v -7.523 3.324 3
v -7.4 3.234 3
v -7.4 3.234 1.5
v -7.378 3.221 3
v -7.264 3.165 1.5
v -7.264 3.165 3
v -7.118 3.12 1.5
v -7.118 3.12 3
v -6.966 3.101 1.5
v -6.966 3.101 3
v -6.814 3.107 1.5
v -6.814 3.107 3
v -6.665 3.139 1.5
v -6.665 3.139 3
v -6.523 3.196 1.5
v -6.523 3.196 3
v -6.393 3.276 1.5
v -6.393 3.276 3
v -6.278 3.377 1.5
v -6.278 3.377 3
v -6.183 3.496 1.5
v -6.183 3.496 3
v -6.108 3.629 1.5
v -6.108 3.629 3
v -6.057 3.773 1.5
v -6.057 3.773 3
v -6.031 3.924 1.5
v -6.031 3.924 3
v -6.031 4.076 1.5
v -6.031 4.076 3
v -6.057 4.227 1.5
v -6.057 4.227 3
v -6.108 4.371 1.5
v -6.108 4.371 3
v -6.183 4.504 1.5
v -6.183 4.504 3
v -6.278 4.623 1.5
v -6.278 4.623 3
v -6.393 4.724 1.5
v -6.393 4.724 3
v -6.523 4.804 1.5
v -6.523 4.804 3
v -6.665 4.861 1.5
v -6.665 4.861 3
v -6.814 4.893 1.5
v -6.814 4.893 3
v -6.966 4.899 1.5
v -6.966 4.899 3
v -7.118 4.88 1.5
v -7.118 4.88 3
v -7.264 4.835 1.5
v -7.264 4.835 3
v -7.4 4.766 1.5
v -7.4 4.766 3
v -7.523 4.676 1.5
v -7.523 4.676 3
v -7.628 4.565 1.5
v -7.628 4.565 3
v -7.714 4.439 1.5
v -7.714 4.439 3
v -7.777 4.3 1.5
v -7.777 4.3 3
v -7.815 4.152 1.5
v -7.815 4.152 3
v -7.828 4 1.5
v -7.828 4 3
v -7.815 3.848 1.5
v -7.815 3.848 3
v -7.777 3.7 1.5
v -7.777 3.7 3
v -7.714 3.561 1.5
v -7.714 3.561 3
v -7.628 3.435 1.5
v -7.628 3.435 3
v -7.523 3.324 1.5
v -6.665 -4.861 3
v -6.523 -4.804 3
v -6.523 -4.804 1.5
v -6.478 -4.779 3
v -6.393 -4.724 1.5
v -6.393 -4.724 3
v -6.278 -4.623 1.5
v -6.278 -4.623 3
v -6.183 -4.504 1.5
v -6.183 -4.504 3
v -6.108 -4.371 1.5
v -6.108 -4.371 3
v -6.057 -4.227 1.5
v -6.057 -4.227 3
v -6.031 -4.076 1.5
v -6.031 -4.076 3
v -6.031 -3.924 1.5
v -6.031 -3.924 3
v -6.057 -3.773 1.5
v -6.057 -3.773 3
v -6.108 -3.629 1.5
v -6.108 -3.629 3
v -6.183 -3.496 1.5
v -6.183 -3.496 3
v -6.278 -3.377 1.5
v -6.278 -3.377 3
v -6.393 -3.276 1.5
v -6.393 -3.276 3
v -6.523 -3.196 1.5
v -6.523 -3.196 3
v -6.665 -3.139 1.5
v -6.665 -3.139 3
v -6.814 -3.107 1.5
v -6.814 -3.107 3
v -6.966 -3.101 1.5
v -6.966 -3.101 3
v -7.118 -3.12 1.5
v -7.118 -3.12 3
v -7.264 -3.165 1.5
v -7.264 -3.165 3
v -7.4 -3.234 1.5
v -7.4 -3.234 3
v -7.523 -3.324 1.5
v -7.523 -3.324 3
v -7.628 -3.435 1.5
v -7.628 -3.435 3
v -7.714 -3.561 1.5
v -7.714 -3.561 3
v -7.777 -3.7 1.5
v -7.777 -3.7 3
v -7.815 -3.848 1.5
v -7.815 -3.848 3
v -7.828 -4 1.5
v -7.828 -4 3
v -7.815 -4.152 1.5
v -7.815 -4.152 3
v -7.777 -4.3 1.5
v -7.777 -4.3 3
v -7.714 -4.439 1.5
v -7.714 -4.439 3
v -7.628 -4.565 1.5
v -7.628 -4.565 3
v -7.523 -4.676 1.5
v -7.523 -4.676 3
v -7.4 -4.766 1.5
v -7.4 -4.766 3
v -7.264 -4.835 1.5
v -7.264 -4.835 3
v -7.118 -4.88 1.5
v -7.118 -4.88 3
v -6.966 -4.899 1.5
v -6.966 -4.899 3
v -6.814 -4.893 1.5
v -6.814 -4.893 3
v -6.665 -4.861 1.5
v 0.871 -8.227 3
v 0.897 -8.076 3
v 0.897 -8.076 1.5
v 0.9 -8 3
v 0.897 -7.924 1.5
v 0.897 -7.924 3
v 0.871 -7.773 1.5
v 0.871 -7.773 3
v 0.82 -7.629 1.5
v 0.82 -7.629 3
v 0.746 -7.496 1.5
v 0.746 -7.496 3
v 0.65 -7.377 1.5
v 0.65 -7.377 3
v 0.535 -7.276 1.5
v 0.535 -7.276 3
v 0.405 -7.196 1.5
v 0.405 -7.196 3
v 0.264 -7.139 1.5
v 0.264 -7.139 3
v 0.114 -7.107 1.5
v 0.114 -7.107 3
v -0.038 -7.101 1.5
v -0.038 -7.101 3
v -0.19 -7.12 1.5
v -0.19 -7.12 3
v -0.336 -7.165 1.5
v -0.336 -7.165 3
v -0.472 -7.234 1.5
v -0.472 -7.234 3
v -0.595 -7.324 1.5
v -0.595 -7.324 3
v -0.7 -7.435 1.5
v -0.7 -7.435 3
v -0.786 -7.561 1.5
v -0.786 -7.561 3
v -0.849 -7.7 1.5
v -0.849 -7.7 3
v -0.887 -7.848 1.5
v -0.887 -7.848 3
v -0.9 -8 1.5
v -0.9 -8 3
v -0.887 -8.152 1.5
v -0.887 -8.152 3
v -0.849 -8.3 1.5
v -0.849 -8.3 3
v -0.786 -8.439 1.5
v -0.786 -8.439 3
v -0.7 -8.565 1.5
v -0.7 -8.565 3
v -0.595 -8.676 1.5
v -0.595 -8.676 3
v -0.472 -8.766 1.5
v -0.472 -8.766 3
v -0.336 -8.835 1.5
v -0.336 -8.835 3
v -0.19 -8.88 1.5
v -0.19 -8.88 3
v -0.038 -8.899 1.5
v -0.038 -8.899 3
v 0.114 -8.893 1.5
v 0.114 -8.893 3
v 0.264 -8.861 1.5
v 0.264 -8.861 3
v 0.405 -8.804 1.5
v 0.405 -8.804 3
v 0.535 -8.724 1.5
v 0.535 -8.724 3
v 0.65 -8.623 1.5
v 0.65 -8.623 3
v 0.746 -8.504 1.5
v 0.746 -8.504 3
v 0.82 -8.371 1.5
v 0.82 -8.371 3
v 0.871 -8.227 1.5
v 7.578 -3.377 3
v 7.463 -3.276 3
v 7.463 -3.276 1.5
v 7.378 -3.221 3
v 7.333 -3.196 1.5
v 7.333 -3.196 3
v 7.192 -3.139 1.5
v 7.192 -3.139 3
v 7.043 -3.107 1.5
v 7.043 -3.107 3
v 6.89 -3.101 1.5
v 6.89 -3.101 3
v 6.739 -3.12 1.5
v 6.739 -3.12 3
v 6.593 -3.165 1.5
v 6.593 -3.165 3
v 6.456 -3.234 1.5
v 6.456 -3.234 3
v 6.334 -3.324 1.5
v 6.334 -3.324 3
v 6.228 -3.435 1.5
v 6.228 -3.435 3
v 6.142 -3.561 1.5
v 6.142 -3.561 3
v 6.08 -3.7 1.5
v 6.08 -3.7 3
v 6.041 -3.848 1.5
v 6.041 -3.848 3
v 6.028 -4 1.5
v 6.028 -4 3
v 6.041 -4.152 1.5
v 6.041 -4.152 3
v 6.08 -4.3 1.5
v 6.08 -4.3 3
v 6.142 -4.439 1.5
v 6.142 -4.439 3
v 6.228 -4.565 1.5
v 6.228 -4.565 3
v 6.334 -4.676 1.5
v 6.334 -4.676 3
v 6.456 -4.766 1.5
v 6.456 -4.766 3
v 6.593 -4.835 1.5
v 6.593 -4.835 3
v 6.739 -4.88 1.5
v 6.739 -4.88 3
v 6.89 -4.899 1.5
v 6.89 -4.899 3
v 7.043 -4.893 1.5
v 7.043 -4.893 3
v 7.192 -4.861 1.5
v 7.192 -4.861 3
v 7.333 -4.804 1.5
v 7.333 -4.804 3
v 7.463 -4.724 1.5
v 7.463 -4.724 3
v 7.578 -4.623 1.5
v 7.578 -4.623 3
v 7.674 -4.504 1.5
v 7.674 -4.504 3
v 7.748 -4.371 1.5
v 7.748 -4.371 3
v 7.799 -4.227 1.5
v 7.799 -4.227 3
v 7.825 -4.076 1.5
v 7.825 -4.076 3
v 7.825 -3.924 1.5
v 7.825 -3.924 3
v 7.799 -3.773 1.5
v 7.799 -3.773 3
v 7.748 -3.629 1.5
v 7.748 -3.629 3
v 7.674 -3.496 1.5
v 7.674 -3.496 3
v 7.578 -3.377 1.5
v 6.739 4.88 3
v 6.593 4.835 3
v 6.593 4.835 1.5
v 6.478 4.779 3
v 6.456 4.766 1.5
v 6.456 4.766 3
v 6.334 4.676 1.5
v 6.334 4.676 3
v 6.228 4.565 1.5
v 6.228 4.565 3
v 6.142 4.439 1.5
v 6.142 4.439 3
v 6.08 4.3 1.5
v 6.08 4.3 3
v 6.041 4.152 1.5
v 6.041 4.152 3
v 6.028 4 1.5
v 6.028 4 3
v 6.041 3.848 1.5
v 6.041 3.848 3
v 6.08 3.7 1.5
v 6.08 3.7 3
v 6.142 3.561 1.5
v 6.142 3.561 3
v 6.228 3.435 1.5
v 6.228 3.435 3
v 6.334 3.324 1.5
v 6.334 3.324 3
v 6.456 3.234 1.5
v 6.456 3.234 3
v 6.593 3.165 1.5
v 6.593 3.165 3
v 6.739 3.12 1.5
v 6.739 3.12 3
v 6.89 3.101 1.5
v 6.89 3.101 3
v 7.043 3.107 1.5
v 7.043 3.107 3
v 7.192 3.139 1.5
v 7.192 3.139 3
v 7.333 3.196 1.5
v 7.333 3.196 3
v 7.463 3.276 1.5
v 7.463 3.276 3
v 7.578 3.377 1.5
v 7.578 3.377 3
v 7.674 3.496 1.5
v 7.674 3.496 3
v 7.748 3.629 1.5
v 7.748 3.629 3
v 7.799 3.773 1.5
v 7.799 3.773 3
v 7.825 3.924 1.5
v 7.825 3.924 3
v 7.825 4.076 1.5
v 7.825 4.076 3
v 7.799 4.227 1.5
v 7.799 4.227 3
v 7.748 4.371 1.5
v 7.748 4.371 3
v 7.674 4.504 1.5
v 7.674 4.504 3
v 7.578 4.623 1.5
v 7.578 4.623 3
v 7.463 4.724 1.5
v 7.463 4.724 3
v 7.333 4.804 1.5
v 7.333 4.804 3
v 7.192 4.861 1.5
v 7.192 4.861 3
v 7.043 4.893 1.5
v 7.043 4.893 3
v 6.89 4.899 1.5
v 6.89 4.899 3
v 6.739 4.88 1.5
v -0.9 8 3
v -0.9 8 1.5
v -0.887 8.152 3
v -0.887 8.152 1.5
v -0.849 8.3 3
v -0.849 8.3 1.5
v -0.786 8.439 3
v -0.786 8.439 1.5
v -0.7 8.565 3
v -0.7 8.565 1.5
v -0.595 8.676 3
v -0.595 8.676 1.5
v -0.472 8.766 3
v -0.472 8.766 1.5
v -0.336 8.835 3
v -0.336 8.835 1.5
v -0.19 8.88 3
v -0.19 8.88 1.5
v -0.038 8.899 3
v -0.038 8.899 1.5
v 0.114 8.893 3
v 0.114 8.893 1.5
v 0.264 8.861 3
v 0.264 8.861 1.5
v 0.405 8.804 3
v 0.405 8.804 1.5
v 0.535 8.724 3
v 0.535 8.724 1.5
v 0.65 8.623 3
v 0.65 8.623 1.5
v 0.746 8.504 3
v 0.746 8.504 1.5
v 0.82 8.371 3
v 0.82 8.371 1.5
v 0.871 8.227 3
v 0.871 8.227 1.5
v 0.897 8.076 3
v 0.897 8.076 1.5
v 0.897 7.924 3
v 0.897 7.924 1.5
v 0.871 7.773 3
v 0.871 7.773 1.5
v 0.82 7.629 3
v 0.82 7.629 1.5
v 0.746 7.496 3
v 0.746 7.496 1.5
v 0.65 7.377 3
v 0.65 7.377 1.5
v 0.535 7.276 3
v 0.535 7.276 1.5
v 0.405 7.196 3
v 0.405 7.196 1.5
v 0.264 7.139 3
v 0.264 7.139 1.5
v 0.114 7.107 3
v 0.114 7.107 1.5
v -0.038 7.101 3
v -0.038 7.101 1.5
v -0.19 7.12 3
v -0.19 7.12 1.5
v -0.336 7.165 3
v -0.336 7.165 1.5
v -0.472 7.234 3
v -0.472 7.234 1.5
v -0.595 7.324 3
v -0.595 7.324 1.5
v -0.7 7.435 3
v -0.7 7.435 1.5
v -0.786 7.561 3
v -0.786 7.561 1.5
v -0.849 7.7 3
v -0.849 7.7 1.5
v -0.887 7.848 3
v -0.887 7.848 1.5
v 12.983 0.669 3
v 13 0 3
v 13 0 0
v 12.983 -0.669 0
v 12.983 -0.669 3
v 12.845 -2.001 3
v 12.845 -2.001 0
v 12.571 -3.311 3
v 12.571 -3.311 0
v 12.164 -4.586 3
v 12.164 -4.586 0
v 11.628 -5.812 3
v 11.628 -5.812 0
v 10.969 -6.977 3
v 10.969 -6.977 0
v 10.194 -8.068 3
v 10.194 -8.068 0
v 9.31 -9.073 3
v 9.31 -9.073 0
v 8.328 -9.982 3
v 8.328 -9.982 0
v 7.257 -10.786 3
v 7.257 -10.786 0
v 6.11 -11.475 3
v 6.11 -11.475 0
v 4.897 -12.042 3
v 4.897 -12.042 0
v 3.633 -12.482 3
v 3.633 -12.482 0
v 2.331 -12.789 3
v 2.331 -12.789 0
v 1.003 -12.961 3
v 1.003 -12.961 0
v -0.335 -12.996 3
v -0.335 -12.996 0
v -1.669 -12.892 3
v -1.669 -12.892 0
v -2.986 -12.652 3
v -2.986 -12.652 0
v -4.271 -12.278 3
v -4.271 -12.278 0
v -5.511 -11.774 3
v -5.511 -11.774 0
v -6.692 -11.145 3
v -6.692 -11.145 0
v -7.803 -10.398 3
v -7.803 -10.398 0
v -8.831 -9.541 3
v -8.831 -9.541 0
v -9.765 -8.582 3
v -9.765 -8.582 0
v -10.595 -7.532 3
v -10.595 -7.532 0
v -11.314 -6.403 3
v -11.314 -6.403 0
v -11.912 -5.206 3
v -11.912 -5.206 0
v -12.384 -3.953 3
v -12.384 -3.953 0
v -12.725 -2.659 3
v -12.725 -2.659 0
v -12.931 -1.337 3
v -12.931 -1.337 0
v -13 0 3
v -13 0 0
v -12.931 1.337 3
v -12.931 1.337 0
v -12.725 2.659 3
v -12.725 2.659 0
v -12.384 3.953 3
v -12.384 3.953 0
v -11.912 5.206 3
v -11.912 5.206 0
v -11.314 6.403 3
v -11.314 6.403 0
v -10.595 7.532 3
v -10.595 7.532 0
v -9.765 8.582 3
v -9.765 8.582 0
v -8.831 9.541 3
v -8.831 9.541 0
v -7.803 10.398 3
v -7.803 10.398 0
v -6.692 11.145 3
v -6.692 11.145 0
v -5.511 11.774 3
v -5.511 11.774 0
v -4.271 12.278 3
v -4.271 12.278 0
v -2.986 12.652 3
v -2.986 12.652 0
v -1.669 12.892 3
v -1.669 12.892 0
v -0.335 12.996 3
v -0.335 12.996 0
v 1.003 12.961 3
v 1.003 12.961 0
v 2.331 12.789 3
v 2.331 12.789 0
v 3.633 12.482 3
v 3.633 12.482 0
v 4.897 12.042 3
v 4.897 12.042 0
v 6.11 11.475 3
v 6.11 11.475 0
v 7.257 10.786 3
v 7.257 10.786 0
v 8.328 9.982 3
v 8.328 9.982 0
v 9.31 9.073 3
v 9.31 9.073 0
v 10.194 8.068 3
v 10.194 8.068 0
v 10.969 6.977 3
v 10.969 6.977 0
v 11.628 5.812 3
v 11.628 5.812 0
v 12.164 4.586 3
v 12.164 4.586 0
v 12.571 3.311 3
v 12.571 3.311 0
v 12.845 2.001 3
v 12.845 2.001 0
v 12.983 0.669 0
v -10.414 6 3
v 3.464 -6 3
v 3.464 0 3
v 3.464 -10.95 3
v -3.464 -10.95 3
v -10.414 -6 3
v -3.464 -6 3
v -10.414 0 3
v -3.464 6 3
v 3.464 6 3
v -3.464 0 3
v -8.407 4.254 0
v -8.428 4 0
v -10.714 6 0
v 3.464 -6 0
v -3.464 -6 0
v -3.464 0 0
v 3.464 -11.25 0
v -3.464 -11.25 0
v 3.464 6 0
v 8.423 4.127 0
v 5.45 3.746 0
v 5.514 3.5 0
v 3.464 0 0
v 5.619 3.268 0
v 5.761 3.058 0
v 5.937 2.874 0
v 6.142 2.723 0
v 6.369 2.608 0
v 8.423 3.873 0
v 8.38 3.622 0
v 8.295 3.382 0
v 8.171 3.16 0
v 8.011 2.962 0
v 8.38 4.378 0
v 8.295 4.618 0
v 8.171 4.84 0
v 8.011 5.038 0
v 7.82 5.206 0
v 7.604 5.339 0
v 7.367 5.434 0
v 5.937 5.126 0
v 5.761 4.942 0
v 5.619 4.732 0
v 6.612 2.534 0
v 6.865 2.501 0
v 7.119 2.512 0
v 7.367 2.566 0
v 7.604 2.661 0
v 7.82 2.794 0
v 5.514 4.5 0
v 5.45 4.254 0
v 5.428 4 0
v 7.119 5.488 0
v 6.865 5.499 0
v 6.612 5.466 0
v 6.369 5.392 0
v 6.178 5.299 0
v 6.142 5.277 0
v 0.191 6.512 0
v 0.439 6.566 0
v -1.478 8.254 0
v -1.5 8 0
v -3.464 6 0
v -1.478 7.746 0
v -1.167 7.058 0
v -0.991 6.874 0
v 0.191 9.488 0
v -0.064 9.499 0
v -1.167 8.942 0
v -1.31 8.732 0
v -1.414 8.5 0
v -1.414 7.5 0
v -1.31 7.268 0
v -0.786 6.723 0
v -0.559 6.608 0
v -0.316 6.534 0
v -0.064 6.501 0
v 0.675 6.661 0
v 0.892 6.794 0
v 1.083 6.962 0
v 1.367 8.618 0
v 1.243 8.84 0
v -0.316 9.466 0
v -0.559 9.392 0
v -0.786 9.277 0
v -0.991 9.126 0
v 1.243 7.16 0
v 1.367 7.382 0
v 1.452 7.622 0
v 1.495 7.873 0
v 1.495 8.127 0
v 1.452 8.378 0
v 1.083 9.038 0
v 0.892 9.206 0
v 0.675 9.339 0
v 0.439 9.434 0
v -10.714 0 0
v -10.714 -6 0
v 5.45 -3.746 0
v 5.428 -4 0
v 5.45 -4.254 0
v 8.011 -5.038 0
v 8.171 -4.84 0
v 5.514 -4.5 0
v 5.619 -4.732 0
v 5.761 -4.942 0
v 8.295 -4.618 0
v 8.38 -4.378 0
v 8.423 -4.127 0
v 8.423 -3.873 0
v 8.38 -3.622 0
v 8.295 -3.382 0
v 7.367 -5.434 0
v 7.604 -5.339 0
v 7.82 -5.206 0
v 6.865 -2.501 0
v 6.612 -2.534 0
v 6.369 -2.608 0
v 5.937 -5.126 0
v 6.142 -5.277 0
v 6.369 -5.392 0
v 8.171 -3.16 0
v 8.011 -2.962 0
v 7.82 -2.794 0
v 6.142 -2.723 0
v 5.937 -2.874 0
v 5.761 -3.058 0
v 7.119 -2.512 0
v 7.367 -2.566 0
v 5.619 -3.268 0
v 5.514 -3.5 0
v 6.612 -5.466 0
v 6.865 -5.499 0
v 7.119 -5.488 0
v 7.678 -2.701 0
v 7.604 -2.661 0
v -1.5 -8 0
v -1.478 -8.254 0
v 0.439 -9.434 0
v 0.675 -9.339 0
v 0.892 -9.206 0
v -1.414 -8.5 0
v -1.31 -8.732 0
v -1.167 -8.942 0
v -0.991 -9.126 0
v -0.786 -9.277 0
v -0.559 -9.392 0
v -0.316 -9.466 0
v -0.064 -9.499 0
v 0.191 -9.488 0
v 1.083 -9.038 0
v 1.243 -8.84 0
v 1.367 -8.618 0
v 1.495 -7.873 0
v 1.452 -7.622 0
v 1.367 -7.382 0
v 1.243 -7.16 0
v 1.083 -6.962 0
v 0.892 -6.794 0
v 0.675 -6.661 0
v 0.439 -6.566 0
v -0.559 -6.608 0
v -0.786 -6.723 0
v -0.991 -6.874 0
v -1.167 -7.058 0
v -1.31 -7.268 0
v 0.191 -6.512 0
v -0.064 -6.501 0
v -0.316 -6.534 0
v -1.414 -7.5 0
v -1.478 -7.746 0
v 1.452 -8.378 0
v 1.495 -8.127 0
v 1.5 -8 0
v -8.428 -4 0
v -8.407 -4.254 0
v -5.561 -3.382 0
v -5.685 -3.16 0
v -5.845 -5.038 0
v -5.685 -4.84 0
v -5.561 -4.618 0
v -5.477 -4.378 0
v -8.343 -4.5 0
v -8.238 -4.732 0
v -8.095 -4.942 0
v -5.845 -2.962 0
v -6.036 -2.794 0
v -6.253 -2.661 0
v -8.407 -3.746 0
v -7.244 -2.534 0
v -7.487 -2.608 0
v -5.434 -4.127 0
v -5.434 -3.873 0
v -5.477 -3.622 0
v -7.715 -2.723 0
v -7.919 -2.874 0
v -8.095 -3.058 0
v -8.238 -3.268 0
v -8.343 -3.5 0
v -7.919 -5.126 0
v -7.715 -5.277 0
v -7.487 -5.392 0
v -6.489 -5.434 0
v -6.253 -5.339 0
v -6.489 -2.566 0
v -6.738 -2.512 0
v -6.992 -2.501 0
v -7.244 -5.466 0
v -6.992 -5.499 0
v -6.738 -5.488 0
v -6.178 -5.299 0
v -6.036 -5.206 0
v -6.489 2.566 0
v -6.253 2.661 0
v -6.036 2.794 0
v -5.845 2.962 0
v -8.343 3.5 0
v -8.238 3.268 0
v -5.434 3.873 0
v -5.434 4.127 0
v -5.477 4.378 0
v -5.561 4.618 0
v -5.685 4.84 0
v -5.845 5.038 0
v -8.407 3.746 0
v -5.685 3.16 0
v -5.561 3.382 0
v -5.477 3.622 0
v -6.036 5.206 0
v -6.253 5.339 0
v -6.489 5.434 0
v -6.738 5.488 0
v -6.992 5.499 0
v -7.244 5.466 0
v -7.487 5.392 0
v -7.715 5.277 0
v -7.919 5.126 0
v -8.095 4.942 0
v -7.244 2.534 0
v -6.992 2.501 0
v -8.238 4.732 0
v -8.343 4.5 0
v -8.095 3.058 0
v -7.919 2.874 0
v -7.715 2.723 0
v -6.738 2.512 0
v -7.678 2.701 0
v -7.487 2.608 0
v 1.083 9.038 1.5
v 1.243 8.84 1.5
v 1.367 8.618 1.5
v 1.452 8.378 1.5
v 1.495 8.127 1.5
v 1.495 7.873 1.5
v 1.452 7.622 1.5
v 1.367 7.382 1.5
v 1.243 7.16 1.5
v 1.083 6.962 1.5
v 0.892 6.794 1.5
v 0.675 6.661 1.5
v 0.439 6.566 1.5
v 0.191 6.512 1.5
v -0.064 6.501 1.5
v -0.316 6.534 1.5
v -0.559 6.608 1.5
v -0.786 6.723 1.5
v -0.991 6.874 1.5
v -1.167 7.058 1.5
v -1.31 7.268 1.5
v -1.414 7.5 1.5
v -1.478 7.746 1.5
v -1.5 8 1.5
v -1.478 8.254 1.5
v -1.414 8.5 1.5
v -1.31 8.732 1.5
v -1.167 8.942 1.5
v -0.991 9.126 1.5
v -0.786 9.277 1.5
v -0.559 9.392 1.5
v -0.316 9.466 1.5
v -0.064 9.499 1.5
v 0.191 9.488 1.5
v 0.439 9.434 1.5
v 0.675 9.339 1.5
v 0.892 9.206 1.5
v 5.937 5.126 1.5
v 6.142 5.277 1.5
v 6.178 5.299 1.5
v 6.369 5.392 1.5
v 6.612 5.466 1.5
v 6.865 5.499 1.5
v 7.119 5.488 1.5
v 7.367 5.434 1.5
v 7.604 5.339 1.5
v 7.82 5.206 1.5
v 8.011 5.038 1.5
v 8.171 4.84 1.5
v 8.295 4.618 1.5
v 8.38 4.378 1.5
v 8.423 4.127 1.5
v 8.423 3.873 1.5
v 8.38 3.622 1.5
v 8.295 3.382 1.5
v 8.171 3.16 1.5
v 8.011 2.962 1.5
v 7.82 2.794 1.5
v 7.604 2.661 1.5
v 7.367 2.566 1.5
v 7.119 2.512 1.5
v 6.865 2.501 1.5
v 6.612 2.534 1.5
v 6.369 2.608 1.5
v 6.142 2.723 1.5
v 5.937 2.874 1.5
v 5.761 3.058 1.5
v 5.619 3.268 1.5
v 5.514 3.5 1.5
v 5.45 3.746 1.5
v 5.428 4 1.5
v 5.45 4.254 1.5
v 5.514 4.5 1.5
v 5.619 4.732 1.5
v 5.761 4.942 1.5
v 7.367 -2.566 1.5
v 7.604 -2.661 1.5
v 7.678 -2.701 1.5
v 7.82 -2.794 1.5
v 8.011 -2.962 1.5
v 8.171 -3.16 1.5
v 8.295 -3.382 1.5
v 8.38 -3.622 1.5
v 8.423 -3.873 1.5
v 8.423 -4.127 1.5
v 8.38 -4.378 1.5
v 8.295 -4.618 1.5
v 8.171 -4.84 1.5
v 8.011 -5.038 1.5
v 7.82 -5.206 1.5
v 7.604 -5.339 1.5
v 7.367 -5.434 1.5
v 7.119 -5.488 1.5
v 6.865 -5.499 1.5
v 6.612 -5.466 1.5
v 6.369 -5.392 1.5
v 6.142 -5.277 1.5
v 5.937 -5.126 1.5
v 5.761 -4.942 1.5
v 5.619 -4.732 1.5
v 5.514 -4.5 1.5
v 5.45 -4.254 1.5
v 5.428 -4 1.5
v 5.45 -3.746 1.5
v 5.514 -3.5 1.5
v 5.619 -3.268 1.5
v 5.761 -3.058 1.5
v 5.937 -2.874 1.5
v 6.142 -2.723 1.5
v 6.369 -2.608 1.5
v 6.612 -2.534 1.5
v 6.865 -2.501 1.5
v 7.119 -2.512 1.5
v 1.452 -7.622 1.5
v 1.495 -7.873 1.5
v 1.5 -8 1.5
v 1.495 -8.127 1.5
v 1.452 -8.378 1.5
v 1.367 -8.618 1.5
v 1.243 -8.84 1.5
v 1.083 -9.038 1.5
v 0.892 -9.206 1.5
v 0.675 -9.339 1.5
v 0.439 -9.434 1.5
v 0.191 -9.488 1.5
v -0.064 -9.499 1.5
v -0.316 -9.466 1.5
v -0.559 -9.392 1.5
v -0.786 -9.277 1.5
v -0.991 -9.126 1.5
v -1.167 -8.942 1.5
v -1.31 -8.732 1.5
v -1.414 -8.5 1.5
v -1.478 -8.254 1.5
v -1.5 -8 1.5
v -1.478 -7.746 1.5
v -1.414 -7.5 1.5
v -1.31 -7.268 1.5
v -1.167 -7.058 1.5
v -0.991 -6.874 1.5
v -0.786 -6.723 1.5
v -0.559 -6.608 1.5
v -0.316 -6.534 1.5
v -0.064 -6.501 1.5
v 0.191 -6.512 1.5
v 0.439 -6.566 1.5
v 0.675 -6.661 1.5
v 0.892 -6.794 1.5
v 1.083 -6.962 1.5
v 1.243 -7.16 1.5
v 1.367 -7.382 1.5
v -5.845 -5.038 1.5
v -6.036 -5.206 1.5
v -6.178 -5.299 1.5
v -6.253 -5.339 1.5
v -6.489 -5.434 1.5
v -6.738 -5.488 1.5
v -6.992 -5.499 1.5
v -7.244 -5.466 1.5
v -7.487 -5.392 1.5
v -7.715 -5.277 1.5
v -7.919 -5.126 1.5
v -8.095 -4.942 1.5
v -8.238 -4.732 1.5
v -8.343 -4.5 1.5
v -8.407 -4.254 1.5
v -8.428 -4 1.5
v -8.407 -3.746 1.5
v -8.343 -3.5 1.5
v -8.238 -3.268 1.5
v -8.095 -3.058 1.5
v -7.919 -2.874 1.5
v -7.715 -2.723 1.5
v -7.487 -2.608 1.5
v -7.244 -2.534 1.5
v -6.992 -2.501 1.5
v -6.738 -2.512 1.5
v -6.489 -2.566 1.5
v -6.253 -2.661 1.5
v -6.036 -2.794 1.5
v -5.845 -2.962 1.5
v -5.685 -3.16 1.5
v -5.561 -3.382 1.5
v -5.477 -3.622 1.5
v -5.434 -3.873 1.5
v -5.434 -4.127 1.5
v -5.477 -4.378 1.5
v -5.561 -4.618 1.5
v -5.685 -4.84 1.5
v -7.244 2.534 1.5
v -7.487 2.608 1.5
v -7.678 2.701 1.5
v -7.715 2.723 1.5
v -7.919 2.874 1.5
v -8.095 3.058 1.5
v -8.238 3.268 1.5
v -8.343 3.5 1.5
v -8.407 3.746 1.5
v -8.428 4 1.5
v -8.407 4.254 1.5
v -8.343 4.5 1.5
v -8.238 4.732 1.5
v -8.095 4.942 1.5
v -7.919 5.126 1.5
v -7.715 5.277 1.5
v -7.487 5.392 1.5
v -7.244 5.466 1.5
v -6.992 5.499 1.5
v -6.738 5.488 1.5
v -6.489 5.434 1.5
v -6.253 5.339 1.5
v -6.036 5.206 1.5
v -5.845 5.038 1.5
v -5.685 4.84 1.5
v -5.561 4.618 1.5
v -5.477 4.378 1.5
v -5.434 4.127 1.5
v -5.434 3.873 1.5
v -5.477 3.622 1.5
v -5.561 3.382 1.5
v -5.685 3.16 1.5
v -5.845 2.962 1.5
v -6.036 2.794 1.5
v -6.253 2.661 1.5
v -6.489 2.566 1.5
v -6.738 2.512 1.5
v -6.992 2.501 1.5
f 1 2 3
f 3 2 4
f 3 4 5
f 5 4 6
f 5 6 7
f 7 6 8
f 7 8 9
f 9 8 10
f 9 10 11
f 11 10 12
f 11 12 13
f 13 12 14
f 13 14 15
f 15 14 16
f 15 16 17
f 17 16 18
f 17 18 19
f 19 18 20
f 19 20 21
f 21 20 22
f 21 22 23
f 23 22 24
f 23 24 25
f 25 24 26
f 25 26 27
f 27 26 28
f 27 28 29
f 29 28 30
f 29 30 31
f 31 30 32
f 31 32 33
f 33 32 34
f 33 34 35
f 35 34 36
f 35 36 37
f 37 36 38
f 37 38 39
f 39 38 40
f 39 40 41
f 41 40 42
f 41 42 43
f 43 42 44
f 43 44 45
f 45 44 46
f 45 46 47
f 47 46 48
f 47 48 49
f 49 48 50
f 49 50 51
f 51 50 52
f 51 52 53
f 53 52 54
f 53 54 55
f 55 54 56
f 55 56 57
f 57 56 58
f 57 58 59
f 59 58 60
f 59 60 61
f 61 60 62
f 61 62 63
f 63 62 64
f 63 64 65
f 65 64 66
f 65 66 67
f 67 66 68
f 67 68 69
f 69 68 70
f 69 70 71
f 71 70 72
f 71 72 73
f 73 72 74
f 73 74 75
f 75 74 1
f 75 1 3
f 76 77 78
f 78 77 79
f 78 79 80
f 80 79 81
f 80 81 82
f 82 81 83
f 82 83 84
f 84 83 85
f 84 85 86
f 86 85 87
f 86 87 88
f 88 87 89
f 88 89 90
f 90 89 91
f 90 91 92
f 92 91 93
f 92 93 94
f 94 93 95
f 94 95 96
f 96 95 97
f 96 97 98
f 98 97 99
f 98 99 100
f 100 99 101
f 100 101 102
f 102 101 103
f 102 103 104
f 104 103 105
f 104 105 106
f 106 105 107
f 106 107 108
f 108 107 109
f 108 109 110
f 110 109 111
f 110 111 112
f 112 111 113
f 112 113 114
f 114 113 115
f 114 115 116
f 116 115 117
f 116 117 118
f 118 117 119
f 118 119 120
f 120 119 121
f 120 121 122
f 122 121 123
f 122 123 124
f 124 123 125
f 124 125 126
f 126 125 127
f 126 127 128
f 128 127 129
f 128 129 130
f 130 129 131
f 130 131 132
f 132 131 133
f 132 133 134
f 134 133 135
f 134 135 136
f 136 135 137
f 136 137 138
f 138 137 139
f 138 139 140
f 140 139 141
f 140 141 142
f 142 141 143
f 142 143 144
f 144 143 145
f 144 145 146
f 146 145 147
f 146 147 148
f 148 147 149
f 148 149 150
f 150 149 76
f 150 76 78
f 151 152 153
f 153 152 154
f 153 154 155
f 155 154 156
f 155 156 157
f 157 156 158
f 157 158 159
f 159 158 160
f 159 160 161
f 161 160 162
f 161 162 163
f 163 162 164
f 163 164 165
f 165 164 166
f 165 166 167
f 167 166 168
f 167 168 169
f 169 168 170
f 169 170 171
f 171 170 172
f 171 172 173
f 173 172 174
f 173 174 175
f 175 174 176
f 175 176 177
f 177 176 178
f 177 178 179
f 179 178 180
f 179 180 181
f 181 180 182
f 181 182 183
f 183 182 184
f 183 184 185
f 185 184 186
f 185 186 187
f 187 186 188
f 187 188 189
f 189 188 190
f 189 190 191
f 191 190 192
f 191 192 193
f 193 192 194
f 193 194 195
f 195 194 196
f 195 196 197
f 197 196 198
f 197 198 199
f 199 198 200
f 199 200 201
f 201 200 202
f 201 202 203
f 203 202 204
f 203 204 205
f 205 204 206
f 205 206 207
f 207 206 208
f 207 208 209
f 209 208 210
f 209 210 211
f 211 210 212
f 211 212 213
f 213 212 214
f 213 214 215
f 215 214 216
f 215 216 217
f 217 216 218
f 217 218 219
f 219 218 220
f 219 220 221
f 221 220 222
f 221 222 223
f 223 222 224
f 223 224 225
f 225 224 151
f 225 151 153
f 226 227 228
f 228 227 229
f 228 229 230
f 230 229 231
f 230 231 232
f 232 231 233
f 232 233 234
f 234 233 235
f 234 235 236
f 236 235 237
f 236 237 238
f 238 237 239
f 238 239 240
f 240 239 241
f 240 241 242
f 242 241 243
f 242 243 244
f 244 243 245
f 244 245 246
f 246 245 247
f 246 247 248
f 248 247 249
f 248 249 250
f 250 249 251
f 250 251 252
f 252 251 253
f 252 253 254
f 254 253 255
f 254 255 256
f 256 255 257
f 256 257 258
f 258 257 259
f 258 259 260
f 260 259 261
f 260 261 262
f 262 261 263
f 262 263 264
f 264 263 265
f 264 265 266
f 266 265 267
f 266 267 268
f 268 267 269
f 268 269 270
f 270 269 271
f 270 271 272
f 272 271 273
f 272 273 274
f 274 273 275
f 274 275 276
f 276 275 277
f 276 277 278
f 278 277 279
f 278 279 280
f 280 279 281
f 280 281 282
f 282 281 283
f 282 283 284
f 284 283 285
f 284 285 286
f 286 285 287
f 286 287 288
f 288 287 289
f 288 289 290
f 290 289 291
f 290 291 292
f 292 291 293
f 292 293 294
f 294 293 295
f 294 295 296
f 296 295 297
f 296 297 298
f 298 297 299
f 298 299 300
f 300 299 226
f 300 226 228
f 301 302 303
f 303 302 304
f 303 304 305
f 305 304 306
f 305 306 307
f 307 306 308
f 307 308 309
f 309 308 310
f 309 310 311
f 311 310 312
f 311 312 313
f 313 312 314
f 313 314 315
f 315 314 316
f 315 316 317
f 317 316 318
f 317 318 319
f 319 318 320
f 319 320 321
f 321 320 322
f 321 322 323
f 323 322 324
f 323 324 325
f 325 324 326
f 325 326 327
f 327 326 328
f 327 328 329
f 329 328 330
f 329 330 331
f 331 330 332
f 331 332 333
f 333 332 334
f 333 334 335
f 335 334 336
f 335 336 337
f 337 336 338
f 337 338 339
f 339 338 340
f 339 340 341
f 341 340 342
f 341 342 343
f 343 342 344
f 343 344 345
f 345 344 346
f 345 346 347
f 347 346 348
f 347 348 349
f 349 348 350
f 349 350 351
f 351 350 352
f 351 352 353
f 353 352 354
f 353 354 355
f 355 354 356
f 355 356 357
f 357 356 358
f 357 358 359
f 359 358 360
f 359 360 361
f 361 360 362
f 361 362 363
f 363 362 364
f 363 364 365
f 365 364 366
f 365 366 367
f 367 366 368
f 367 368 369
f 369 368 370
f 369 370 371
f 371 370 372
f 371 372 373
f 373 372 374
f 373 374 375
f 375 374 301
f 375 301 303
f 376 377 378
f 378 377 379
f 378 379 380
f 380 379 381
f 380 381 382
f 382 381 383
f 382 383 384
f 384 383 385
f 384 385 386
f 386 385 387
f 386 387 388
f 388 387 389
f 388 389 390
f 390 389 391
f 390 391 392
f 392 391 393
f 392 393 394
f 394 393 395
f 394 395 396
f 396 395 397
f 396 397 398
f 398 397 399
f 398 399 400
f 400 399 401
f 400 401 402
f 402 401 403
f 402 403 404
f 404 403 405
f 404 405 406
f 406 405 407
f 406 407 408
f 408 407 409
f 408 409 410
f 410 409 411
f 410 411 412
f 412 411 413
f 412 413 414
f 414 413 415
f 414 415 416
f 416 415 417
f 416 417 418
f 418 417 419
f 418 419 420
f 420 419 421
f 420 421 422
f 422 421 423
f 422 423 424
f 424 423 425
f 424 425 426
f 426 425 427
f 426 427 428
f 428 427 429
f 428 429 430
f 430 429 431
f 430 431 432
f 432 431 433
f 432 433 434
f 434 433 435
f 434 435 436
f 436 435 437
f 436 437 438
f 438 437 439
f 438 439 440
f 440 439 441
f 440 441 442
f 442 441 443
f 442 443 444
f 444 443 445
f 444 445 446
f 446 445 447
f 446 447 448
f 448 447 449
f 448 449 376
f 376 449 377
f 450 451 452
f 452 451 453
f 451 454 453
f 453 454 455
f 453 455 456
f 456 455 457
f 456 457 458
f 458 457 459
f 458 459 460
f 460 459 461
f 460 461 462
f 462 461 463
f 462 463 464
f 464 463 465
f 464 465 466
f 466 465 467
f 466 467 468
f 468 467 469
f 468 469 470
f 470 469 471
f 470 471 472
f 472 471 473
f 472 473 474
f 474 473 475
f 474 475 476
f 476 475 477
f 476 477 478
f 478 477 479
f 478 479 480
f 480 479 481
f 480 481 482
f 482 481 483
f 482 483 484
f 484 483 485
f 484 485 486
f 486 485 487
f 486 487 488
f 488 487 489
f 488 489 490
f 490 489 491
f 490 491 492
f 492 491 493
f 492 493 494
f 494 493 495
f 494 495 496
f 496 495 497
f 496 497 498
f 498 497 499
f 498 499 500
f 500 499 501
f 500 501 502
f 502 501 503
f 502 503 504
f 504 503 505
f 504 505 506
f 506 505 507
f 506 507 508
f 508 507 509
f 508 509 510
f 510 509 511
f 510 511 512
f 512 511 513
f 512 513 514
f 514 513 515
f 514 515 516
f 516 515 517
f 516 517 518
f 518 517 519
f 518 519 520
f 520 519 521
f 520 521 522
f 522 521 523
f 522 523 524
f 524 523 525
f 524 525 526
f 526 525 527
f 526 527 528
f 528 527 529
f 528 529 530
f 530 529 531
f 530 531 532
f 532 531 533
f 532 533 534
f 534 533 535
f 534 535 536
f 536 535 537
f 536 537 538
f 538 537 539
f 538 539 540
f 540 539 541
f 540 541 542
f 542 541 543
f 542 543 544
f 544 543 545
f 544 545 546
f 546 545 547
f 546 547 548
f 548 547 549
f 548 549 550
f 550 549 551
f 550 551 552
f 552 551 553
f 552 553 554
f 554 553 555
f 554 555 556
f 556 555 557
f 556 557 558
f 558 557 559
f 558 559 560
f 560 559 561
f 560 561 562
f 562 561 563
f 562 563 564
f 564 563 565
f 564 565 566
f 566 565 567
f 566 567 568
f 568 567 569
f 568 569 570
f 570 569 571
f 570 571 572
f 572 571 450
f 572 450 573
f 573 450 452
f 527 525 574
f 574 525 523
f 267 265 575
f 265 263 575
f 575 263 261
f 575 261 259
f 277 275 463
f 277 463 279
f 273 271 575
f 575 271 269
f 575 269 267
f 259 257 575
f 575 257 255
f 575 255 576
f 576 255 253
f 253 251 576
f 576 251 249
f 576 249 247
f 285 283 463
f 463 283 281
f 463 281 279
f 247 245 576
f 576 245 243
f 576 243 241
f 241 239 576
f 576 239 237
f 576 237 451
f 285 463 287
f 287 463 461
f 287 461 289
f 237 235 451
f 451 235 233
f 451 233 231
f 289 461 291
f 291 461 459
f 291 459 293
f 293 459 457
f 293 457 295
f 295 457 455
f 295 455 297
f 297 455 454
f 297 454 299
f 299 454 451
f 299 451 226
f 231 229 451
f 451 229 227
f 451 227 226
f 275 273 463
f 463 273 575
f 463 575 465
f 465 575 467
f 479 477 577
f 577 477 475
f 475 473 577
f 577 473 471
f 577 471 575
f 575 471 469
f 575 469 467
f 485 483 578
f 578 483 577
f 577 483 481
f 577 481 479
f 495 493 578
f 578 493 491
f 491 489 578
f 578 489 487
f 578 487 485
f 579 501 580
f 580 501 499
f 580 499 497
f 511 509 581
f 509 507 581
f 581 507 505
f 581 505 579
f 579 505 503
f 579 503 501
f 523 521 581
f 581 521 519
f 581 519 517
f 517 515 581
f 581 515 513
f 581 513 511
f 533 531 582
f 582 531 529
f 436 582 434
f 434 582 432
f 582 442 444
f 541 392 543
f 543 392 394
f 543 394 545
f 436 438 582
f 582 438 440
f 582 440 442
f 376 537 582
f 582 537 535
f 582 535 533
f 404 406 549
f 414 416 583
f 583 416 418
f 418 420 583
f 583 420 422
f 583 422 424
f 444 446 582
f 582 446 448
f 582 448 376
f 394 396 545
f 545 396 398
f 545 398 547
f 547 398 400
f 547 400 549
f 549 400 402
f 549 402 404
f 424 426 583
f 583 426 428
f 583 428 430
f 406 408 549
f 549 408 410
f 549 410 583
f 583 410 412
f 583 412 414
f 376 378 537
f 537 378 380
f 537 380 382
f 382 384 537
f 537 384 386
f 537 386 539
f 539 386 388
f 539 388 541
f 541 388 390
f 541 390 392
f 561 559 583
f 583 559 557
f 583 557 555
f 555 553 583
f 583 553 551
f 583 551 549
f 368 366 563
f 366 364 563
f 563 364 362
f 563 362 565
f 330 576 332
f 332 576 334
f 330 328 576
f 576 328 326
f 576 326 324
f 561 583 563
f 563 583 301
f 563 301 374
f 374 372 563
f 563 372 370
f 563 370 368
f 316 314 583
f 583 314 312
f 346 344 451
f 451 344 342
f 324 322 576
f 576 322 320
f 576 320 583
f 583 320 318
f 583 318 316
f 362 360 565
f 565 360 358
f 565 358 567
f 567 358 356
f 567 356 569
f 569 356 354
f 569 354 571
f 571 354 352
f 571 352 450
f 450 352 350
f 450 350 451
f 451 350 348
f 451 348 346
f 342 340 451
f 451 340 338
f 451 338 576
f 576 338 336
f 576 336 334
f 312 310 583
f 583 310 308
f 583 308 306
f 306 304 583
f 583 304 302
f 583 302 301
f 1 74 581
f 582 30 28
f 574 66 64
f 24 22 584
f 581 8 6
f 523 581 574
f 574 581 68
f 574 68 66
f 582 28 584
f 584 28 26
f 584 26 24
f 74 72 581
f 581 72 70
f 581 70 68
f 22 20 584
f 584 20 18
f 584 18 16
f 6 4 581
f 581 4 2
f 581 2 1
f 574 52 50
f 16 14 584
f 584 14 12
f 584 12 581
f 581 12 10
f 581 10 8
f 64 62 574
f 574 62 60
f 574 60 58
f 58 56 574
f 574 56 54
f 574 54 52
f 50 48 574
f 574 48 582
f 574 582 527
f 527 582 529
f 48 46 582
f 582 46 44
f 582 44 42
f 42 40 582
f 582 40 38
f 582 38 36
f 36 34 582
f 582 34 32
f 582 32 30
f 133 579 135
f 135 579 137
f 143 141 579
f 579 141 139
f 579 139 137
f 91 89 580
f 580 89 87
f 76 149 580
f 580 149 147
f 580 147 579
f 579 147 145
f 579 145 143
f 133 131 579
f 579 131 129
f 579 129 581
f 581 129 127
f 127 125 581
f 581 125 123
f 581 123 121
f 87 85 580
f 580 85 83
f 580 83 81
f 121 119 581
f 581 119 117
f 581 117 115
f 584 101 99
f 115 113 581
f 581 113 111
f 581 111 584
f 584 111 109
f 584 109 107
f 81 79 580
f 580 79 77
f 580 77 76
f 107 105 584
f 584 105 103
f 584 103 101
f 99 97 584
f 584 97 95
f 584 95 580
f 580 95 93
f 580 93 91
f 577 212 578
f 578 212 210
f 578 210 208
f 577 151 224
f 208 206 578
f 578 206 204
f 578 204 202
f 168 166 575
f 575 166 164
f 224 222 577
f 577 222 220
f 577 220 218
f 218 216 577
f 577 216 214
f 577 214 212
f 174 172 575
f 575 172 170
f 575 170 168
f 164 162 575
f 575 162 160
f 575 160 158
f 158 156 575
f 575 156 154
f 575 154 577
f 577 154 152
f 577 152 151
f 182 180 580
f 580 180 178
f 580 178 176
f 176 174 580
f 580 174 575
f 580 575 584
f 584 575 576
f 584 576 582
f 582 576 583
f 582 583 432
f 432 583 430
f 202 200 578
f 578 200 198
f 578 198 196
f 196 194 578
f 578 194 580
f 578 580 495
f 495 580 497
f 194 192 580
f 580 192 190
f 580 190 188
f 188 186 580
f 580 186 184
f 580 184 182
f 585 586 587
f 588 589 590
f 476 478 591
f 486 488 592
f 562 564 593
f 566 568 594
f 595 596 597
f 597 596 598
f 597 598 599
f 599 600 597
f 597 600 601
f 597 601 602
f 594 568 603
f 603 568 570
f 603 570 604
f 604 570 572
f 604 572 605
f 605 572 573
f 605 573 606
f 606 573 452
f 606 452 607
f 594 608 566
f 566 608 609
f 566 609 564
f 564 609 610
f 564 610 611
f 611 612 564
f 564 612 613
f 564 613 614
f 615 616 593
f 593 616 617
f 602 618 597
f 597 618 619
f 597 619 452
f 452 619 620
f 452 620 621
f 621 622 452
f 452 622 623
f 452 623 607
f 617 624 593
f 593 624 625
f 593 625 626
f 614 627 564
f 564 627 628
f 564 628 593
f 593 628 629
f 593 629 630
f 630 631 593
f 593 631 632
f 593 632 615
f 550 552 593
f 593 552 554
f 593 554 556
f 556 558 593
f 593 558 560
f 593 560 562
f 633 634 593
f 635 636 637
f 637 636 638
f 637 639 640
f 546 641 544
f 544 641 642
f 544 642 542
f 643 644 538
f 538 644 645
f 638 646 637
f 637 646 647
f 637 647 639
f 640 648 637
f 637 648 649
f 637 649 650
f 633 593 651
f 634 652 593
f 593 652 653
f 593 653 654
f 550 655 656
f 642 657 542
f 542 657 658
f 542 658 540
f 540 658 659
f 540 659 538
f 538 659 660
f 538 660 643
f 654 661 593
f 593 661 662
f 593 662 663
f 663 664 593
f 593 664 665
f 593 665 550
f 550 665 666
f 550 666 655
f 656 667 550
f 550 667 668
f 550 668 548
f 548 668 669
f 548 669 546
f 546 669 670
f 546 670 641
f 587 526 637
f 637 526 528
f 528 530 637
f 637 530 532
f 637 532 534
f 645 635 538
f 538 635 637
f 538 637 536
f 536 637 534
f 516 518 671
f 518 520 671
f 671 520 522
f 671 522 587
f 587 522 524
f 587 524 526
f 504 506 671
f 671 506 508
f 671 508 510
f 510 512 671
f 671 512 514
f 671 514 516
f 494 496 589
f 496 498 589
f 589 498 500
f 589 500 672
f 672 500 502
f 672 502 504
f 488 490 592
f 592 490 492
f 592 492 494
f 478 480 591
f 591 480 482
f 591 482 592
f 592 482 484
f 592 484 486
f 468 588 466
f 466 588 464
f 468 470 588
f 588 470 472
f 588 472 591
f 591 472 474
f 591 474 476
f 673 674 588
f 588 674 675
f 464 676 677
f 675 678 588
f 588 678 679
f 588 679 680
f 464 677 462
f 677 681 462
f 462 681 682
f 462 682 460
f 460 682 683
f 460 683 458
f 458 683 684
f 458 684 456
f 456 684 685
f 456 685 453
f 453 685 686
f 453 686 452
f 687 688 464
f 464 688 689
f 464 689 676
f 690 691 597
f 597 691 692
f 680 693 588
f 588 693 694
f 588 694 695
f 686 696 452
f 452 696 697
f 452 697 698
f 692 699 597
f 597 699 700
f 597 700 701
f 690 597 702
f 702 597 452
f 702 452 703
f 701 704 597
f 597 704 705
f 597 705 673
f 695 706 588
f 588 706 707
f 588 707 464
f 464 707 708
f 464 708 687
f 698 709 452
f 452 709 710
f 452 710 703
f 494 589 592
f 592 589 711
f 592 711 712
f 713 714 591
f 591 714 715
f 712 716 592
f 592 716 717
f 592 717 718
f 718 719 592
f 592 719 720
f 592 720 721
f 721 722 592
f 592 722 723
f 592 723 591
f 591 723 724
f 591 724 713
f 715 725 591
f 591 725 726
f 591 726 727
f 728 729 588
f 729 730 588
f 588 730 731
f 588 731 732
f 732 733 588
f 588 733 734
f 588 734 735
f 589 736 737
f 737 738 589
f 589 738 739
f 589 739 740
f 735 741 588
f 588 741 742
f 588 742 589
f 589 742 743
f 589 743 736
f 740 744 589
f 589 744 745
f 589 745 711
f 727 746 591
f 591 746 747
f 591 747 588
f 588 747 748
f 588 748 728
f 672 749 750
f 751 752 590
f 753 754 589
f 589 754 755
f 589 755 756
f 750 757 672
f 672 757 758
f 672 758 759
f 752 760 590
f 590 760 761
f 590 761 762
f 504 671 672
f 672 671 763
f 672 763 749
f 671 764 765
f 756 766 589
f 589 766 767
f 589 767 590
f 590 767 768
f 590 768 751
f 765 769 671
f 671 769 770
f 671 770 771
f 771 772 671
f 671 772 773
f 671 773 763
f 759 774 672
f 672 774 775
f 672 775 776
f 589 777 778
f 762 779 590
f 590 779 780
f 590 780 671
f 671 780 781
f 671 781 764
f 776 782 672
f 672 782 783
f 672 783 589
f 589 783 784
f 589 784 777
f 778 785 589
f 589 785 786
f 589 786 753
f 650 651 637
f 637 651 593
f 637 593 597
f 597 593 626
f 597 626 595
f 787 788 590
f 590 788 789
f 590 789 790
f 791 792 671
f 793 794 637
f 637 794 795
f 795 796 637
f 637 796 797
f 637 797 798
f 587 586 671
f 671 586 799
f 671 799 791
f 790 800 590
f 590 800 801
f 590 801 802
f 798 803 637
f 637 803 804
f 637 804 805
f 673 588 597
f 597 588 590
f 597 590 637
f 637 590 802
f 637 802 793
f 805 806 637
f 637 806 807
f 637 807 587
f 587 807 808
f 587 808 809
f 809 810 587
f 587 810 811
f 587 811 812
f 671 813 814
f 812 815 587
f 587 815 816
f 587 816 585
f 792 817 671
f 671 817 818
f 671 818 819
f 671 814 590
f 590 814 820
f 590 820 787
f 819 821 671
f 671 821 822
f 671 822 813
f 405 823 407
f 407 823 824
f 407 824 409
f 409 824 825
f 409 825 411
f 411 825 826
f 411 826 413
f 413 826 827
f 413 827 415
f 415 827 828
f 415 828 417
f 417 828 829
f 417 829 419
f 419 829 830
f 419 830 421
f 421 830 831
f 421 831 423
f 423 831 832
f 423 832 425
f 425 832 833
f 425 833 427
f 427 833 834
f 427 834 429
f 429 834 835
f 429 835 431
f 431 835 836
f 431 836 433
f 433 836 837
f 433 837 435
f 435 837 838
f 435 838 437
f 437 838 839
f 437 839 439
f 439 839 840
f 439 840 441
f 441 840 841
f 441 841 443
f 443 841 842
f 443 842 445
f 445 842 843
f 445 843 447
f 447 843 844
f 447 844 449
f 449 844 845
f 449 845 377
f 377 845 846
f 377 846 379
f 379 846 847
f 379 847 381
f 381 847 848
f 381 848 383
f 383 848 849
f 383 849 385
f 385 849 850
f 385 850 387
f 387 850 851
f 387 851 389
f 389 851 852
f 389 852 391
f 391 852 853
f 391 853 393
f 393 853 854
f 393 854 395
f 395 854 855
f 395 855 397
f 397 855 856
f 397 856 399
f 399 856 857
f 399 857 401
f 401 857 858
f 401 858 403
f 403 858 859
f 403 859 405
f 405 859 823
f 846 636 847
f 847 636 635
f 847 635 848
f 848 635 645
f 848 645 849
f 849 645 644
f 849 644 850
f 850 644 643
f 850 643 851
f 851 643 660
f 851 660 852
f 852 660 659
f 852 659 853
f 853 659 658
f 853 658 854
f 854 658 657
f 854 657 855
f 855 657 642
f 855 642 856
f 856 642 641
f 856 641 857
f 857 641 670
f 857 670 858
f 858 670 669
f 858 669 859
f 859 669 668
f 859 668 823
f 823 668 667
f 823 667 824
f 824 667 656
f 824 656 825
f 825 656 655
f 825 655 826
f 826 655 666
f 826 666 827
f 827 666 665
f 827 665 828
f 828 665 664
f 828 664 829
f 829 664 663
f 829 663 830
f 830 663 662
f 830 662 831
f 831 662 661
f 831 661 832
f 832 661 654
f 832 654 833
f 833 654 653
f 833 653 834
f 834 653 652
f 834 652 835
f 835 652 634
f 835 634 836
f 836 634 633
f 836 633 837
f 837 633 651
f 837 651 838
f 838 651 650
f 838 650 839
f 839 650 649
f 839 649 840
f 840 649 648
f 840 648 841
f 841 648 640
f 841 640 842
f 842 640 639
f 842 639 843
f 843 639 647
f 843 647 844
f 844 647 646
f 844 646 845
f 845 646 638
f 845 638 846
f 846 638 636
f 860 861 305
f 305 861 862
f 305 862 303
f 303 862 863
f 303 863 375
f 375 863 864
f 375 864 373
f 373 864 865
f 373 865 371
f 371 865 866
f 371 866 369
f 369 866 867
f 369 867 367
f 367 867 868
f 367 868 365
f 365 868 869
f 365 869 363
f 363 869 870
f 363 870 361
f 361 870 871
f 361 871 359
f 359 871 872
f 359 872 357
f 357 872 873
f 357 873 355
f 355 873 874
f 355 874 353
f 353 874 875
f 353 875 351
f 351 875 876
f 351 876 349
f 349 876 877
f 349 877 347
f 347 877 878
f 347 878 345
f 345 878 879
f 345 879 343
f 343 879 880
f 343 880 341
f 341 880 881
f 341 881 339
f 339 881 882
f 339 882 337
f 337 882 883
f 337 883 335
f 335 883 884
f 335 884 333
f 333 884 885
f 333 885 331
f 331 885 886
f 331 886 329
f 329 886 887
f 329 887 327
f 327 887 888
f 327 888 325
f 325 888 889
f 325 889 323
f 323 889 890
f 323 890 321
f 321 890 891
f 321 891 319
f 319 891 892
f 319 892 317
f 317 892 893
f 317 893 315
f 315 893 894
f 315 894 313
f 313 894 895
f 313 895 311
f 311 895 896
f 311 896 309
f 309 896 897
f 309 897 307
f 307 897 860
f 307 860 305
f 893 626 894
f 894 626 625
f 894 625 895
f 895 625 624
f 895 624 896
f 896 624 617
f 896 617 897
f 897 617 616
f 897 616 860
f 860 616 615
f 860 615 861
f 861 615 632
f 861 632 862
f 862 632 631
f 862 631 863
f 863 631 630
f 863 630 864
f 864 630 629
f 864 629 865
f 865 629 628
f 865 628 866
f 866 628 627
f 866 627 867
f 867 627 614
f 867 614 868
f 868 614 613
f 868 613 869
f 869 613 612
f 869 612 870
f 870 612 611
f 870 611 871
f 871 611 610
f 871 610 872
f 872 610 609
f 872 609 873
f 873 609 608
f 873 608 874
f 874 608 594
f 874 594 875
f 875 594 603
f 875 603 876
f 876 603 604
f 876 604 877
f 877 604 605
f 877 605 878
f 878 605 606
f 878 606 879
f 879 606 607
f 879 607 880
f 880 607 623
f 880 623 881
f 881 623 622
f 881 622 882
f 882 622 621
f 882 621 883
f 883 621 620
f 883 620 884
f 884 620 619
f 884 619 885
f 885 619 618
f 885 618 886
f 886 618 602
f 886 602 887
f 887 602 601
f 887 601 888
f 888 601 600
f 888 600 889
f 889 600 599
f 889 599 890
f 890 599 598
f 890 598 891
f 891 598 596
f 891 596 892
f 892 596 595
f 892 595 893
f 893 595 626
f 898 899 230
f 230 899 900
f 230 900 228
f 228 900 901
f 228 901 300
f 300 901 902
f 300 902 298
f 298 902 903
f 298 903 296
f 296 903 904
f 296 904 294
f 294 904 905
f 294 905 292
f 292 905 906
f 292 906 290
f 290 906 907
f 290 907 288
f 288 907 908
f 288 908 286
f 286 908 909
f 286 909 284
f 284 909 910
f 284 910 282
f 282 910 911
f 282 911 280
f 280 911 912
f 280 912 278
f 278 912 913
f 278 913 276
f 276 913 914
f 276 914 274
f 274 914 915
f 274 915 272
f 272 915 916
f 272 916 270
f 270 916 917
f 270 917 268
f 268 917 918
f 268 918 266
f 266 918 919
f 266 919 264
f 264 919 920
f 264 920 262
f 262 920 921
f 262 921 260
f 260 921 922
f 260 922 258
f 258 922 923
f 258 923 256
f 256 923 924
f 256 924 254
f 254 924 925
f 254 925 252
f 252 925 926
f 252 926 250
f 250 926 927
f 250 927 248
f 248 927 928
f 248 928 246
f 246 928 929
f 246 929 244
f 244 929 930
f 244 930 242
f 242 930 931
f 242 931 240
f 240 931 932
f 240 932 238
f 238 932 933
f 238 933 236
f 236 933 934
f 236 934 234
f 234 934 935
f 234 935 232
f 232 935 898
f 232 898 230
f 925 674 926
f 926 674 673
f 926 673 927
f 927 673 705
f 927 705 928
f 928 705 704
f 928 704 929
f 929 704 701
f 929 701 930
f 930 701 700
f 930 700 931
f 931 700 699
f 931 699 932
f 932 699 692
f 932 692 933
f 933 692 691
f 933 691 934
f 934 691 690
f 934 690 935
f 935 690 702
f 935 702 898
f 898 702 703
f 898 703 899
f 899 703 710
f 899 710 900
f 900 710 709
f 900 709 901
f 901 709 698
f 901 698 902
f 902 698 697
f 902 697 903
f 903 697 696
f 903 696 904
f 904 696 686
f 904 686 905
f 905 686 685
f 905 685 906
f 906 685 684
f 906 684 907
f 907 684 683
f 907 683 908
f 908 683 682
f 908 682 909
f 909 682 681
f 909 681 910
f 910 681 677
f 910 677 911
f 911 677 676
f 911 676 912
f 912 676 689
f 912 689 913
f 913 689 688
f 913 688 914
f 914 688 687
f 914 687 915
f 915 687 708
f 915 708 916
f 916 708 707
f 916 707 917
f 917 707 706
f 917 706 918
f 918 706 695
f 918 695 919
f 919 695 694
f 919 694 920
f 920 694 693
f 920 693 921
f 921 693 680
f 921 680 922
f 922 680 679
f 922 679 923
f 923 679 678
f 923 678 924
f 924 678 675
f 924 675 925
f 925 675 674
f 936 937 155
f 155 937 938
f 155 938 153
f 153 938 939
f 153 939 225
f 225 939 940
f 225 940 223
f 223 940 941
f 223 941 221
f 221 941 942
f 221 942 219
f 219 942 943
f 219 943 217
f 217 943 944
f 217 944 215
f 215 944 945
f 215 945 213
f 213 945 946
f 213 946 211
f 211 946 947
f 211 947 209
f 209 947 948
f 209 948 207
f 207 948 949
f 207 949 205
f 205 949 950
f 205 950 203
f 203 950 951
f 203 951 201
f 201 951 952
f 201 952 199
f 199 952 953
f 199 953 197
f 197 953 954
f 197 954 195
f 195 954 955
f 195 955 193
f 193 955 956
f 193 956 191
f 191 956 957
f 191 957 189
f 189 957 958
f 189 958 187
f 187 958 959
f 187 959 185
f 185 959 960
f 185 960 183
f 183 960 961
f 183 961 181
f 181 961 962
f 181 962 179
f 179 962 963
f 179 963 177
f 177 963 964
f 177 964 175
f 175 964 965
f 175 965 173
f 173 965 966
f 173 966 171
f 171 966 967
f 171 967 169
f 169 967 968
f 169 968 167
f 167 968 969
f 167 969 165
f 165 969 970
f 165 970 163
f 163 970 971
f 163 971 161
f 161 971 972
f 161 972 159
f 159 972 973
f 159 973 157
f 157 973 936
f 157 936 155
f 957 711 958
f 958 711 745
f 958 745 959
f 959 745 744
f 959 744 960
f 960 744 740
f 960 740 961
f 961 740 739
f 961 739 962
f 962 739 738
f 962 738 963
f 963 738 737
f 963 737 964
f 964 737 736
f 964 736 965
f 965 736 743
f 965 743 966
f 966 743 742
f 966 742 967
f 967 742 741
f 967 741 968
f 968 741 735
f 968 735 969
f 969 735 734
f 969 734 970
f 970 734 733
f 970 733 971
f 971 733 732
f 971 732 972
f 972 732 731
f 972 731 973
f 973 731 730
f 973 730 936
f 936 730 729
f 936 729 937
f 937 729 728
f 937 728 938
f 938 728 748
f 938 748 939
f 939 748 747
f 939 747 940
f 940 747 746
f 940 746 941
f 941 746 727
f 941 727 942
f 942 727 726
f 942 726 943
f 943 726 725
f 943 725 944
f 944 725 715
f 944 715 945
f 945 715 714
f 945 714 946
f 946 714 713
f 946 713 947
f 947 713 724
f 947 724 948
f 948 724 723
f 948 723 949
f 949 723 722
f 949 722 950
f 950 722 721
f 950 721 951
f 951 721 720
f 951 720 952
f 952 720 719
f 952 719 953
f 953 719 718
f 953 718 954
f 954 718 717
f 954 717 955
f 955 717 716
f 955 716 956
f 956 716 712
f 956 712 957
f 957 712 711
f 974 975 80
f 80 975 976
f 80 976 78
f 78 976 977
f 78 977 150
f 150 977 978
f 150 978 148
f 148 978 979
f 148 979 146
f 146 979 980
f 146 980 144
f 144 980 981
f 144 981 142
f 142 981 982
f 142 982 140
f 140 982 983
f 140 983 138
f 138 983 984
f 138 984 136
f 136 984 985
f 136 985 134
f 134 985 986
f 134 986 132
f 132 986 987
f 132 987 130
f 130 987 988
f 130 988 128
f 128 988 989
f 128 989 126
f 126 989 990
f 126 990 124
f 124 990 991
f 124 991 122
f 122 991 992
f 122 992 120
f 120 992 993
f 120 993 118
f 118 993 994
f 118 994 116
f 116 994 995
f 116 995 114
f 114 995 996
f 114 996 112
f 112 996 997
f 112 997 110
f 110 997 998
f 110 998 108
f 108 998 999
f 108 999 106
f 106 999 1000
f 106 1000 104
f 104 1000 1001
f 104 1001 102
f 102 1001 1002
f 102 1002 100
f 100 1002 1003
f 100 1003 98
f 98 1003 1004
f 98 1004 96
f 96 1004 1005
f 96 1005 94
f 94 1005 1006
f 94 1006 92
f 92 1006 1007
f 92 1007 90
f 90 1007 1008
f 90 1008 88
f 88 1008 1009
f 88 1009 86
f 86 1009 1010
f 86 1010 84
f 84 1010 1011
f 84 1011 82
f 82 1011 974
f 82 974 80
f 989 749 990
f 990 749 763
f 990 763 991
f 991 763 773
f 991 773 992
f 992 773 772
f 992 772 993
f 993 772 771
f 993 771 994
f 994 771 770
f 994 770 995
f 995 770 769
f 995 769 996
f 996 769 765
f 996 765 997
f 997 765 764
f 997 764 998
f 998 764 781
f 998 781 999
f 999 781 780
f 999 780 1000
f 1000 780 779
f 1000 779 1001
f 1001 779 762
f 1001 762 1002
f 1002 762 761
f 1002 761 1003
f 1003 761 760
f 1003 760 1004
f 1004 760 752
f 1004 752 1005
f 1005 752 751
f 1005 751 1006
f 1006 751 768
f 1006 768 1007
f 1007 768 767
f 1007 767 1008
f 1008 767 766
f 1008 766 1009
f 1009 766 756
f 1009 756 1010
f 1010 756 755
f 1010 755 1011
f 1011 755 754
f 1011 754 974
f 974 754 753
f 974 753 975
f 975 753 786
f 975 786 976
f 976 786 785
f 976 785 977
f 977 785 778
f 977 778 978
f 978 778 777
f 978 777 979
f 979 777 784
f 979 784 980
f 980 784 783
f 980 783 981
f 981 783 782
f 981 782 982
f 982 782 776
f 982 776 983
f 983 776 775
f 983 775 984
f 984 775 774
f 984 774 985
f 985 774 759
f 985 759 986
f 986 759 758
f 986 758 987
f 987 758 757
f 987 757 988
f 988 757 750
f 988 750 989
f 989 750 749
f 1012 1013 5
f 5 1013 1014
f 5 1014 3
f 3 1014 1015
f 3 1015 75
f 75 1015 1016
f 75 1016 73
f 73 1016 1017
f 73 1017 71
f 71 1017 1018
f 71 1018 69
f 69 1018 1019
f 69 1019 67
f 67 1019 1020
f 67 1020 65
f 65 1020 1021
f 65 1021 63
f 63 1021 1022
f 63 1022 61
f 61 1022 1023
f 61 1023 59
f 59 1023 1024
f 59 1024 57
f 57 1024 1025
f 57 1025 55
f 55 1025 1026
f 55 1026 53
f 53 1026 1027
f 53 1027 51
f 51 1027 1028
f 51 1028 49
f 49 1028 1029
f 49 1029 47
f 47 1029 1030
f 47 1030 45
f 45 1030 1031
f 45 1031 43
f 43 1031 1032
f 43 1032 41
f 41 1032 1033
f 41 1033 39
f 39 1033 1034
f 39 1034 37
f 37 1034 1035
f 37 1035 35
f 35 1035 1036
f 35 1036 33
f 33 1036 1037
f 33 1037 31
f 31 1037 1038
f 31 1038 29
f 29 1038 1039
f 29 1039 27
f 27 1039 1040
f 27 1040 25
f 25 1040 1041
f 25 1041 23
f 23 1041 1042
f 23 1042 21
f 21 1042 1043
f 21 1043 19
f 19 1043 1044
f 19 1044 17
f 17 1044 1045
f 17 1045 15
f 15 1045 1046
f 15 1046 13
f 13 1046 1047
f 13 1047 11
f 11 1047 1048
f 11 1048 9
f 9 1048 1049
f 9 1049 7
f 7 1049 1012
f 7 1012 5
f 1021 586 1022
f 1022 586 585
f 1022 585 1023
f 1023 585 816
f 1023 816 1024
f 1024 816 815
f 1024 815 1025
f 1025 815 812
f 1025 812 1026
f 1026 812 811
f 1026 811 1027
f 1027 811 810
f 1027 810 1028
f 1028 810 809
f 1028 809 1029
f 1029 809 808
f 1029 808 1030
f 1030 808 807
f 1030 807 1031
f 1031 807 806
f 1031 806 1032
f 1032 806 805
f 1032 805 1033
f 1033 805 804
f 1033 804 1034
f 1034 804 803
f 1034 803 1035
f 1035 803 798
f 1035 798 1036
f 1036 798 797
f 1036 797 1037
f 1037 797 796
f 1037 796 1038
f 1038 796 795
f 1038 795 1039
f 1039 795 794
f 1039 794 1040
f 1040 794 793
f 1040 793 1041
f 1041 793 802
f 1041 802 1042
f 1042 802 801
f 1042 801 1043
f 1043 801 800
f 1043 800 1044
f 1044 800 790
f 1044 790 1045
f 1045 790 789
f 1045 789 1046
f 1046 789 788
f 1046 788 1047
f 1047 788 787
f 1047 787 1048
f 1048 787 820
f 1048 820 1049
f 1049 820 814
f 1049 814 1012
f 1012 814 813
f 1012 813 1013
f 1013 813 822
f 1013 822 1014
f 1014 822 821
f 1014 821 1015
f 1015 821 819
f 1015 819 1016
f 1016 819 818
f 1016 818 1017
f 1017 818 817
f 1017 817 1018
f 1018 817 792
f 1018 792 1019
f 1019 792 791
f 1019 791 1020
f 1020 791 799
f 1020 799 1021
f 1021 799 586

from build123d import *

# Parameters (mm, degrees)
SKETCH_1_R               = 13
EXTRUDE_1_DEPTH          = 3
SKETCH_2_R               = 0.9
CUT_EXTRUDE_1_DEPTH      = 19.62793601
SKETCH_2_3_R             = 1.5
CUT_EXTRUDE_2_DEPTH      = 1.5
PATTERN_CIRCULAR_1_COUNT = 6


with BuildPart() as part:
    # 草图1 → 凸台-拉伸1 (new body)
    with BuildSketch(Plane.XY):
        Circle(SKETCH_1_R)
    extrude(amount=EXTRUDE_1_DEPTH)

    # 草图2 → 切除-拉伸1 (cut, through all)
    with BuildSketch(Plane(origin=(0, 0, 0), x_dir=(-1, 0, 0), z_dir=(0, 0, -1))):
        with Locations((0, 8)):
            Circle(SKETCH_2_R)
    cut_extrude_1 = extrude(amount=-CUT_EXTRUDE_1_DEPTH, mode=Mode.SUBTRACT)

    # 草图2<3> → 切除-拉伸2 (cut)
    with BuildSketch(Plane(origin=(0, 0, 0), x_dir=(-1, 0, 0), z_dir=(0, 0, -1))):
        with Locations((0, 8)):
            Circle(SKETCH_2_3_R)
    cut_extrude_2 = extrude(amount=-CUT_EXTRUDE_2_DEPTH, mode=Mode.SUBTRACT)

    # 阵列(圆周)1: 切除-拉伸1, 切除-拉伸2 ×6 about axis
    pattern_circular_1_axis = Axis((0, 0, 3), (0, 0, -1))
    add([cut_extrude_1.rotate(pattern_circular_1_axis, i * 360 / PATTERN_CIRCULAR_1_COUNT) for i in range(1, PATTERN_CIRCULAR_1_COUNT)], mode=Mode.SUBTRACT)
    add([cut_extrude_2.rotate(pattern_circular_1_axis, i * 360 / PATTERN_CIRCULAR_1_COUNT) for i in range(1, PATTERN_CIRCULAR_1_COUNT)], mode=Mode.SUBTRACT)


solid = part.part
